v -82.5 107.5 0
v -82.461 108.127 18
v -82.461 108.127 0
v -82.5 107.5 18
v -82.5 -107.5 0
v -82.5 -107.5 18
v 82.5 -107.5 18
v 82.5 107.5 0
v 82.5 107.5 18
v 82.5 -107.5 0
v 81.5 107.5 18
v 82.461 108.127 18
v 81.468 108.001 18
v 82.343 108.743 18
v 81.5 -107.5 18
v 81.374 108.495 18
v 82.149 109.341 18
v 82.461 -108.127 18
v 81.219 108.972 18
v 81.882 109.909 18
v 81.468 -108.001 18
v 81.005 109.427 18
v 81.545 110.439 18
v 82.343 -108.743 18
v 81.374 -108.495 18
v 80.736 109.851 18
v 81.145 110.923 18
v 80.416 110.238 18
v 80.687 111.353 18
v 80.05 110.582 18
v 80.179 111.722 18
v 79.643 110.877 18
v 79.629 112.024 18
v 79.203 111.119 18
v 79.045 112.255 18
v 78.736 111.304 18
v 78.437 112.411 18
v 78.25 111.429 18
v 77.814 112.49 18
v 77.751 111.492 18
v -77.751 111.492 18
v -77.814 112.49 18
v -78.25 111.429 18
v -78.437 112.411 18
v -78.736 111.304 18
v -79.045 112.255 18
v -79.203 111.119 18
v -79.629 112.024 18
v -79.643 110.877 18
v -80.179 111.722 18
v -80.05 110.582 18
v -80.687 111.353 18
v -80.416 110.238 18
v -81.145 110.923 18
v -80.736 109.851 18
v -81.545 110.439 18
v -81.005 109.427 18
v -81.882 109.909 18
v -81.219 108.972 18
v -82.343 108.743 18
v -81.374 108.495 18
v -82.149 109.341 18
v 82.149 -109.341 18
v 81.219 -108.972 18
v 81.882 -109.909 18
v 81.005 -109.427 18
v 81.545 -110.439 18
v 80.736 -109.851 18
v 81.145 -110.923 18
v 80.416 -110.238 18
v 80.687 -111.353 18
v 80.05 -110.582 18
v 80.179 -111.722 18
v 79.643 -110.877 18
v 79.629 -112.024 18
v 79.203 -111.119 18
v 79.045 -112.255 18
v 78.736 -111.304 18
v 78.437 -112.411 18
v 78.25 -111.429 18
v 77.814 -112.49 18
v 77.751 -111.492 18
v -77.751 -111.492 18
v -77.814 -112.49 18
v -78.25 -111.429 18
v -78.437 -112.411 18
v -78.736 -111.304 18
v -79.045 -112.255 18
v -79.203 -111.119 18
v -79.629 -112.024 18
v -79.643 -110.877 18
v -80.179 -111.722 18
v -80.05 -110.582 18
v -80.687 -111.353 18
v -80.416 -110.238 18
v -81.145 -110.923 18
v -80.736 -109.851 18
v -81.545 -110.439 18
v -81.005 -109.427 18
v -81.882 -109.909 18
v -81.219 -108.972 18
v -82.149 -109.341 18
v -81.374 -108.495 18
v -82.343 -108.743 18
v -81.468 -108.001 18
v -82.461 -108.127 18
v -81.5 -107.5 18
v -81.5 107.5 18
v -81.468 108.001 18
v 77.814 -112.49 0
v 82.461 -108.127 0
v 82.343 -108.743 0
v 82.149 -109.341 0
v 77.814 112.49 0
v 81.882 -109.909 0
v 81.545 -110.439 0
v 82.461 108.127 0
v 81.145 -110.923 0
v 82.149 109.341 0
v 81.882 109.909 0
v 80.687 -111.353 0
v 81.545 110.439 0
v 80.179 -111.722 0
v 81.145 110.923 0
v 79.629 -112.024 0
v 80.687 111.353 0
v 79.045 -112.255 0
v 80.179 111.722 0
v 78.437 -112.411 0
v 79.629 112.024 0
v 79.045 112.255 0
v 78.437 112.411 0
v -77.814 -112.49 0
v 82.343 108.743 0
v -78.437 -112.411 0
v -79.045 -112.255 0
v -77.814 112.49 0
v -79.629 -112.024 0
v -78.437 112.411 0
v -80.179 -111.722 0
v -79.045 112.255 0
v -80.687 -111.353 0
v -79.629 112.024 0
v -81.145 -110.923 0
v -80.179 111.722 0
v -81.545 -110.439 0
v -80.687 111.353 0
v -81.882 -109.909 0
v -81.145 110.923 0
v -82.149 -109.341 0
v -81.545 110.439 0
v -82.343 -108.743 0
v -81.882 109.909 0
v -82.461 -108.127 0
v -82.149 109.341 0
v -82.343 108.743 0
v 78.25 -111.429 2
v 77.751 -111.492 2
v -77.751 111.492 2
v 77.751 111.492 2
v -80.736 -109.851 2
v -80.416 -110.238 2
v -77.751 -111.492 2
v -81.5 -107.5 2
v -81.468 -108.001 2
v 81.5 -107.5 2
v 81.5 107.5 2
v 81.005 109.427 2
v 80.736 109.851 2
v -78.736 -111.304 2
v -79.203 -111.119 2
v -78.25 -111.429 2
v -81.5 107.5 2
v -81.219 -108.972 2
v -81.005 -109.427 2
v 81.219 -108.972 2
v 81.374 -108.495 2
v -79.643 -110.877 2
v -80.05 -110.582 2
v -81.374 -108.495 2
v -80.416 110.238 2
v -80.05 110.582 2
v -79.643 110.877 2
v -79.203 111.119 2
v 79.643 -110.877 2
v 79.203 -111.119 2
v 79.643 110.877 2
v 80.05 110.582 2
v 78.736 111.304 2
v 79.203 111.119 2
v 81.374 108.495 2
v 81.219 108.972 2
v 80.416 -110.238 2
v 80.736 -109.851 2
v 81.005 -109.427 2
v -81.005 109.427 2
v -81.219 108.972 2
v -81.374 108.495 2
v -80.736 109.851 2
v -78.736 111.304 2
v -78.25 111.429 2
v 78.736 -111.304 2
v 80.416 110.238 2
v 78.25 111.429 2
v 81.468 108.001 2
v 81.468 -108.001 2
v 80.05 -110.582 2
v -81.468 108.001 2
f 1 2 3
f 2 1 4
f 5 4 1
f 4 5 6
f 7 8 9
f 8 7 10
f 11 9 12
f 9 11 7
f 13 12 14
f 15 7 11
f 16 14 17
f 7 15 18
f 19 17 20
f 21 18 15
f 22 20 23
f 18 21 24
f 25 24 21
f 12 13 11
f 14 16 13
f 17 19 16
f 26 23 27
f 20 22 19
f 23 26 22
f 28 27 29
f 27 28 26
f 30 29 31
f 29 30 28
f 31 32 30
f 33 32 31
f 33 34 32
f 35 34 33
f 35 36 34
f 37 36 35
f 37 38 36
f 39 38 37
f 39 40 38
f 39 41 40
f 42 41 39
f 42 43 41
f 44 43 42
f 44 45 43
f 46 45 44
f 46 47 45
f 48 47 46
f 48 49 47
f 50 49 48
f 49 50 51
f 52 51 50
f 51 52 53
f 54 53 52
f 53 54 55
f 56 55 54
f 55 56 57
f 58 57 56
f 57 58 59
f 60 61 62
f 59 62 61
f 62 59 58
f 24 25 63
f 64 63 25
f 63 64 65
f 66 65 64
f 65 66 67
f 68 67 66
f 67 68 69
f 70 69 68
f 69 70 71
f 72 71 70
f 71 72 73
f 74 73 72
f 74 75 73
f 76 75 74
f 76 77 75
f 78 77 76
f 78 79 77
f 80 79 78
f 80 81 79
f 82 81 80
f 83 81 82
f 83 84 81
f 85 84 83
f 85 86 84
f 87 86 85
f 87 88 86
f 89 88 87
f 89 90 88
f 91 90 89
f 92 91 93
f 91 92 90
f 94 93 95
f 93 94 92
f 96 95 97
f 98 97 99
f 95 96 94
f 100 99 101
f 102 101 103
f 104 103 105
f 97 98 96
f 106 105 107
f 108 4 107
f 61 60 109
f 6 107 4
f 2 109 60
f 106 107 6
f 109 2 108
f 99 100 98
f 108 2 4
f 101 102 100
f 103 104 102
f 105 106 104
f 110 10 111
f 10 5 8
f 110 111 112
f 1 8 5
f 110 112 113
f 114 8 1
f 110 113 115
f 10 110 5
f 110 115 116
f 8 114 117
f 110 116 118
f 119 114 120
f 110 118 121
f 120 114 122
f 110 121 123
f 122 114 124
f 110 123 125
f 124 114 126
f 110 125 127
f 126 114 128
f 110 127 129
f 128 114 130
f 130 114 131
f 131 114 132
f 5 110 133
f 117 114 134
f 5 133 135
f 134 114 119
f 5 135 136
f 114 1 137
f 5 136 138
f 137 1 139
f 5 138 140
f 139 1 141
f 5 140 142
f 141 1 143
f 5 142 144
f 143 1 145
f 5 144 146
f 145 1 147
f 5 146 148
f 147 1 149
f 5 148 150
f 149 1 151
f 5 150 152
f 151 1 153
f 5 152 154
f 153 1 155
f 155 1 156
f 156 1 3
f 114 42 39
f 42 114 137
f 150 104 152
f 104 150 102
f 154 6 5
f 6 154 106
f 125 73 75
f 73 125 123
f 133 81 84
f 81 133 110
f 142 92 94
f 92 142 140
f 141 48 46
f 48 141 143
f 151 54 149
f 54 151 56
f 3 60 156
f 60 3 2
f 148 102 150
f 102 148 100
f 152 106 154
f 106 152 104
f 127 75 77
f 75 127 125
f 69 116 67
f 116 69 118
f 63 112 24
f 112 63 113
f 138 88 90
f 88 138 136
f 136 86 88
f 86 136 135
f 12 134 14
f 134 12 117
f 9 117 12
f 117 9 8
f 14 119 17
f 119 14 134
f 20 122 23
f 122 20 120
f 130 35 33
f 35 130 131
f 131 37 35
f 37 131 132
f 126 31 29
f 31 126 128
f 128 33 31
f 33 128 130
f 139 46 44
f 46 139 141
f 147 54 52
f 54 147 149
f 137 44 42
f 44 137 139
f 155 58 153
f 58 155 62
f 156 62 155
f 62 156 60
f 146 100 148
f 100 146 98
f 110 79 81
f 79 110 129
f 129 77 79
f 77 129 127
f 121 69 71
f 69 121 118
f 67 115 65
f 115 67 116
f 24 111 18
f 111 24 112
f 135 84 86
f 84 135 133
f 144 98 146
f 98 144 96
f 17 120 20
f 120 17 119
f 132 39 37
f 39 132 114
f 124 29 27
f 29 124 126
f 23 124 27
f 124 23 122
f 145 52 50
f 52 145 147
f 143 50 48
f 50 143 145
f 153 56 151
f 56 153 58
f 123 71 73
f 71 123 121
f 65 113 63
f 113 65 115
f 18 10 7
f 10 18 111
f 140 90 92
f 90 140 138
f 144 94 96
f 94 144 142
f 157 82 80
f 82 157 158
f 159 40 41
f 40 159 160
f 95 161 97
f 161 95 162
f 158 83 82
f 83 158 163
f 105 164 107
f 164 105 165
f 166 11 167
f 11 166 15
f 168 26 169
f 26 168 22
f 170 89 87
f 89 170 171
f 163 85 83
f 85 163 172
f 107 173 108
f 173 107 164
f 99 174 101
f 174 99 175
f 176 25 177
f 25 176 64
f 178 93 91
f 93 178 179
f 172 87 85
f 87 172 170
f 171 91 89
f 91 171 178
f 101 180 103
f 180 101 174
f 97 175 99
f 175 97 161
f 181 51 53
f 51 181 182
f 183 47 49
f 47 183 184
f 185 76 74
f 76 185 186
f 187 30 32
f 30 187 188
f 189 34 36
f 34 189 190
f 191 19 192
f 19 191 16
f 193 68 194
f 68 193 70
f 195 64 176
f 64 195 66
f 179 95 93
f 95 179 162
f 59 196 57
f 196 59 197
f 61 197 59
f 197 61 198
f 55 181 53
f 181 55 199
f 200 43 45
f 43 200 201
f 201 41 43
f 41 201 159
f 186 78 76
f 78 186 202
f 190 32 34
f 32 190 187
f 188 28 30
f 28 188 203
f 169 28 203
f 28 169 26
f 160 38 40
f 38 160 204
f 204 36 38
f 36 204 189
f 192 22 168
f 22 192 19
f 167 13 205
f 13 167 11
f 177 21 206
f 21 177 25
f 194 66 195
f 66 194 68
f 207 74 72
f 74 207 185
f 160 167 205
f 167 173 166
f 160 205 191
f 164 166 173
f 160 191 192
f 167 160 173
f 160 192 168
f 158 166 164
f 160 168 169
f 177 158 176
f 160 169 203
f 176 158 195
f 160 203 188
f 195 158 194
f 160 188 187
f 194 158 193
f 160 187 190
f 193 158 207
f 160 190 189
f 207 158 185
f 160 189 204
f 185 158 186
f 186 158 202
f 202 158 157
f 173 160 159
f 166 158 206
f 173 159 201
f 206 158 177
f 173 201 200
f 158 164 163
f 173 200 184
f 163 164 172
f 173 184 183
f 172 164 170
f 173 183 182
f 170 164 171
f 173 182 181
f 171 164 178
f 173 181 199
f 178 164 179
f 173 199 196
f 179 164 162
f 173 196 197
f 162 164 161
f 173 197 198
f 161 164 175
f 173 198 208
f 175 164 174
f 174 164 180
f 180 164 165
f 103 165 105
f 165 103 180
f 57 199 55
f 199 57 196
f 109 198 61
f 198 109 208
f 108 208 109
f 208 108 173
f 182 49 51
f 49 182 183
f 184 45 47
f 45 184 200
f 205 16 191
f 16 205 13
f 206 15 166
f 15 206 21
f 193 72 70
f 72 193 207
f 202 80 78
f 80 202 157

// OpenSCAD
$fn = 50;


difference() {
	union() {
		hull() {
			translate(v = [-77.5000000000, 107.5000000000, 0]) {
				cylinder(h = 18, r = 5);
			}
			translate(v = [77.5000000000, 107.5000000000, 0]) {
				cylinder(h = 18, r = 5);
			}
			translate(v = [-77.5000000000, -107.5000000000, 0]) {
				cylinder(h = 18, r = 5);
			}
			translate(v = [77.5000000000, -107.5000000000, 0]) {
				cylinder(h = 18, r = 5);
			}
		}
	}
	union() {
		translate(v = [0, 0, 2]) {
			hull() {
				translate(v = [-77.5000000000, 107.5000000000, 0]) {
					cylinder(h = 16, r = 4);
				}
				translate(v = [77.5000000000, 107.5000000000, 0]) {
					cylinder(h = 16, r = 4);
				}
				translate(v = [-77.5000000000, -107.5000000000, 0]) {
					cylinder(h = 16, r = 4);
				}
				translate(v = [77.5000000000, -107.5000000000, 0]) {
					cylinder(h = 16, r = 4);
				}
			}
		}
	}
}
